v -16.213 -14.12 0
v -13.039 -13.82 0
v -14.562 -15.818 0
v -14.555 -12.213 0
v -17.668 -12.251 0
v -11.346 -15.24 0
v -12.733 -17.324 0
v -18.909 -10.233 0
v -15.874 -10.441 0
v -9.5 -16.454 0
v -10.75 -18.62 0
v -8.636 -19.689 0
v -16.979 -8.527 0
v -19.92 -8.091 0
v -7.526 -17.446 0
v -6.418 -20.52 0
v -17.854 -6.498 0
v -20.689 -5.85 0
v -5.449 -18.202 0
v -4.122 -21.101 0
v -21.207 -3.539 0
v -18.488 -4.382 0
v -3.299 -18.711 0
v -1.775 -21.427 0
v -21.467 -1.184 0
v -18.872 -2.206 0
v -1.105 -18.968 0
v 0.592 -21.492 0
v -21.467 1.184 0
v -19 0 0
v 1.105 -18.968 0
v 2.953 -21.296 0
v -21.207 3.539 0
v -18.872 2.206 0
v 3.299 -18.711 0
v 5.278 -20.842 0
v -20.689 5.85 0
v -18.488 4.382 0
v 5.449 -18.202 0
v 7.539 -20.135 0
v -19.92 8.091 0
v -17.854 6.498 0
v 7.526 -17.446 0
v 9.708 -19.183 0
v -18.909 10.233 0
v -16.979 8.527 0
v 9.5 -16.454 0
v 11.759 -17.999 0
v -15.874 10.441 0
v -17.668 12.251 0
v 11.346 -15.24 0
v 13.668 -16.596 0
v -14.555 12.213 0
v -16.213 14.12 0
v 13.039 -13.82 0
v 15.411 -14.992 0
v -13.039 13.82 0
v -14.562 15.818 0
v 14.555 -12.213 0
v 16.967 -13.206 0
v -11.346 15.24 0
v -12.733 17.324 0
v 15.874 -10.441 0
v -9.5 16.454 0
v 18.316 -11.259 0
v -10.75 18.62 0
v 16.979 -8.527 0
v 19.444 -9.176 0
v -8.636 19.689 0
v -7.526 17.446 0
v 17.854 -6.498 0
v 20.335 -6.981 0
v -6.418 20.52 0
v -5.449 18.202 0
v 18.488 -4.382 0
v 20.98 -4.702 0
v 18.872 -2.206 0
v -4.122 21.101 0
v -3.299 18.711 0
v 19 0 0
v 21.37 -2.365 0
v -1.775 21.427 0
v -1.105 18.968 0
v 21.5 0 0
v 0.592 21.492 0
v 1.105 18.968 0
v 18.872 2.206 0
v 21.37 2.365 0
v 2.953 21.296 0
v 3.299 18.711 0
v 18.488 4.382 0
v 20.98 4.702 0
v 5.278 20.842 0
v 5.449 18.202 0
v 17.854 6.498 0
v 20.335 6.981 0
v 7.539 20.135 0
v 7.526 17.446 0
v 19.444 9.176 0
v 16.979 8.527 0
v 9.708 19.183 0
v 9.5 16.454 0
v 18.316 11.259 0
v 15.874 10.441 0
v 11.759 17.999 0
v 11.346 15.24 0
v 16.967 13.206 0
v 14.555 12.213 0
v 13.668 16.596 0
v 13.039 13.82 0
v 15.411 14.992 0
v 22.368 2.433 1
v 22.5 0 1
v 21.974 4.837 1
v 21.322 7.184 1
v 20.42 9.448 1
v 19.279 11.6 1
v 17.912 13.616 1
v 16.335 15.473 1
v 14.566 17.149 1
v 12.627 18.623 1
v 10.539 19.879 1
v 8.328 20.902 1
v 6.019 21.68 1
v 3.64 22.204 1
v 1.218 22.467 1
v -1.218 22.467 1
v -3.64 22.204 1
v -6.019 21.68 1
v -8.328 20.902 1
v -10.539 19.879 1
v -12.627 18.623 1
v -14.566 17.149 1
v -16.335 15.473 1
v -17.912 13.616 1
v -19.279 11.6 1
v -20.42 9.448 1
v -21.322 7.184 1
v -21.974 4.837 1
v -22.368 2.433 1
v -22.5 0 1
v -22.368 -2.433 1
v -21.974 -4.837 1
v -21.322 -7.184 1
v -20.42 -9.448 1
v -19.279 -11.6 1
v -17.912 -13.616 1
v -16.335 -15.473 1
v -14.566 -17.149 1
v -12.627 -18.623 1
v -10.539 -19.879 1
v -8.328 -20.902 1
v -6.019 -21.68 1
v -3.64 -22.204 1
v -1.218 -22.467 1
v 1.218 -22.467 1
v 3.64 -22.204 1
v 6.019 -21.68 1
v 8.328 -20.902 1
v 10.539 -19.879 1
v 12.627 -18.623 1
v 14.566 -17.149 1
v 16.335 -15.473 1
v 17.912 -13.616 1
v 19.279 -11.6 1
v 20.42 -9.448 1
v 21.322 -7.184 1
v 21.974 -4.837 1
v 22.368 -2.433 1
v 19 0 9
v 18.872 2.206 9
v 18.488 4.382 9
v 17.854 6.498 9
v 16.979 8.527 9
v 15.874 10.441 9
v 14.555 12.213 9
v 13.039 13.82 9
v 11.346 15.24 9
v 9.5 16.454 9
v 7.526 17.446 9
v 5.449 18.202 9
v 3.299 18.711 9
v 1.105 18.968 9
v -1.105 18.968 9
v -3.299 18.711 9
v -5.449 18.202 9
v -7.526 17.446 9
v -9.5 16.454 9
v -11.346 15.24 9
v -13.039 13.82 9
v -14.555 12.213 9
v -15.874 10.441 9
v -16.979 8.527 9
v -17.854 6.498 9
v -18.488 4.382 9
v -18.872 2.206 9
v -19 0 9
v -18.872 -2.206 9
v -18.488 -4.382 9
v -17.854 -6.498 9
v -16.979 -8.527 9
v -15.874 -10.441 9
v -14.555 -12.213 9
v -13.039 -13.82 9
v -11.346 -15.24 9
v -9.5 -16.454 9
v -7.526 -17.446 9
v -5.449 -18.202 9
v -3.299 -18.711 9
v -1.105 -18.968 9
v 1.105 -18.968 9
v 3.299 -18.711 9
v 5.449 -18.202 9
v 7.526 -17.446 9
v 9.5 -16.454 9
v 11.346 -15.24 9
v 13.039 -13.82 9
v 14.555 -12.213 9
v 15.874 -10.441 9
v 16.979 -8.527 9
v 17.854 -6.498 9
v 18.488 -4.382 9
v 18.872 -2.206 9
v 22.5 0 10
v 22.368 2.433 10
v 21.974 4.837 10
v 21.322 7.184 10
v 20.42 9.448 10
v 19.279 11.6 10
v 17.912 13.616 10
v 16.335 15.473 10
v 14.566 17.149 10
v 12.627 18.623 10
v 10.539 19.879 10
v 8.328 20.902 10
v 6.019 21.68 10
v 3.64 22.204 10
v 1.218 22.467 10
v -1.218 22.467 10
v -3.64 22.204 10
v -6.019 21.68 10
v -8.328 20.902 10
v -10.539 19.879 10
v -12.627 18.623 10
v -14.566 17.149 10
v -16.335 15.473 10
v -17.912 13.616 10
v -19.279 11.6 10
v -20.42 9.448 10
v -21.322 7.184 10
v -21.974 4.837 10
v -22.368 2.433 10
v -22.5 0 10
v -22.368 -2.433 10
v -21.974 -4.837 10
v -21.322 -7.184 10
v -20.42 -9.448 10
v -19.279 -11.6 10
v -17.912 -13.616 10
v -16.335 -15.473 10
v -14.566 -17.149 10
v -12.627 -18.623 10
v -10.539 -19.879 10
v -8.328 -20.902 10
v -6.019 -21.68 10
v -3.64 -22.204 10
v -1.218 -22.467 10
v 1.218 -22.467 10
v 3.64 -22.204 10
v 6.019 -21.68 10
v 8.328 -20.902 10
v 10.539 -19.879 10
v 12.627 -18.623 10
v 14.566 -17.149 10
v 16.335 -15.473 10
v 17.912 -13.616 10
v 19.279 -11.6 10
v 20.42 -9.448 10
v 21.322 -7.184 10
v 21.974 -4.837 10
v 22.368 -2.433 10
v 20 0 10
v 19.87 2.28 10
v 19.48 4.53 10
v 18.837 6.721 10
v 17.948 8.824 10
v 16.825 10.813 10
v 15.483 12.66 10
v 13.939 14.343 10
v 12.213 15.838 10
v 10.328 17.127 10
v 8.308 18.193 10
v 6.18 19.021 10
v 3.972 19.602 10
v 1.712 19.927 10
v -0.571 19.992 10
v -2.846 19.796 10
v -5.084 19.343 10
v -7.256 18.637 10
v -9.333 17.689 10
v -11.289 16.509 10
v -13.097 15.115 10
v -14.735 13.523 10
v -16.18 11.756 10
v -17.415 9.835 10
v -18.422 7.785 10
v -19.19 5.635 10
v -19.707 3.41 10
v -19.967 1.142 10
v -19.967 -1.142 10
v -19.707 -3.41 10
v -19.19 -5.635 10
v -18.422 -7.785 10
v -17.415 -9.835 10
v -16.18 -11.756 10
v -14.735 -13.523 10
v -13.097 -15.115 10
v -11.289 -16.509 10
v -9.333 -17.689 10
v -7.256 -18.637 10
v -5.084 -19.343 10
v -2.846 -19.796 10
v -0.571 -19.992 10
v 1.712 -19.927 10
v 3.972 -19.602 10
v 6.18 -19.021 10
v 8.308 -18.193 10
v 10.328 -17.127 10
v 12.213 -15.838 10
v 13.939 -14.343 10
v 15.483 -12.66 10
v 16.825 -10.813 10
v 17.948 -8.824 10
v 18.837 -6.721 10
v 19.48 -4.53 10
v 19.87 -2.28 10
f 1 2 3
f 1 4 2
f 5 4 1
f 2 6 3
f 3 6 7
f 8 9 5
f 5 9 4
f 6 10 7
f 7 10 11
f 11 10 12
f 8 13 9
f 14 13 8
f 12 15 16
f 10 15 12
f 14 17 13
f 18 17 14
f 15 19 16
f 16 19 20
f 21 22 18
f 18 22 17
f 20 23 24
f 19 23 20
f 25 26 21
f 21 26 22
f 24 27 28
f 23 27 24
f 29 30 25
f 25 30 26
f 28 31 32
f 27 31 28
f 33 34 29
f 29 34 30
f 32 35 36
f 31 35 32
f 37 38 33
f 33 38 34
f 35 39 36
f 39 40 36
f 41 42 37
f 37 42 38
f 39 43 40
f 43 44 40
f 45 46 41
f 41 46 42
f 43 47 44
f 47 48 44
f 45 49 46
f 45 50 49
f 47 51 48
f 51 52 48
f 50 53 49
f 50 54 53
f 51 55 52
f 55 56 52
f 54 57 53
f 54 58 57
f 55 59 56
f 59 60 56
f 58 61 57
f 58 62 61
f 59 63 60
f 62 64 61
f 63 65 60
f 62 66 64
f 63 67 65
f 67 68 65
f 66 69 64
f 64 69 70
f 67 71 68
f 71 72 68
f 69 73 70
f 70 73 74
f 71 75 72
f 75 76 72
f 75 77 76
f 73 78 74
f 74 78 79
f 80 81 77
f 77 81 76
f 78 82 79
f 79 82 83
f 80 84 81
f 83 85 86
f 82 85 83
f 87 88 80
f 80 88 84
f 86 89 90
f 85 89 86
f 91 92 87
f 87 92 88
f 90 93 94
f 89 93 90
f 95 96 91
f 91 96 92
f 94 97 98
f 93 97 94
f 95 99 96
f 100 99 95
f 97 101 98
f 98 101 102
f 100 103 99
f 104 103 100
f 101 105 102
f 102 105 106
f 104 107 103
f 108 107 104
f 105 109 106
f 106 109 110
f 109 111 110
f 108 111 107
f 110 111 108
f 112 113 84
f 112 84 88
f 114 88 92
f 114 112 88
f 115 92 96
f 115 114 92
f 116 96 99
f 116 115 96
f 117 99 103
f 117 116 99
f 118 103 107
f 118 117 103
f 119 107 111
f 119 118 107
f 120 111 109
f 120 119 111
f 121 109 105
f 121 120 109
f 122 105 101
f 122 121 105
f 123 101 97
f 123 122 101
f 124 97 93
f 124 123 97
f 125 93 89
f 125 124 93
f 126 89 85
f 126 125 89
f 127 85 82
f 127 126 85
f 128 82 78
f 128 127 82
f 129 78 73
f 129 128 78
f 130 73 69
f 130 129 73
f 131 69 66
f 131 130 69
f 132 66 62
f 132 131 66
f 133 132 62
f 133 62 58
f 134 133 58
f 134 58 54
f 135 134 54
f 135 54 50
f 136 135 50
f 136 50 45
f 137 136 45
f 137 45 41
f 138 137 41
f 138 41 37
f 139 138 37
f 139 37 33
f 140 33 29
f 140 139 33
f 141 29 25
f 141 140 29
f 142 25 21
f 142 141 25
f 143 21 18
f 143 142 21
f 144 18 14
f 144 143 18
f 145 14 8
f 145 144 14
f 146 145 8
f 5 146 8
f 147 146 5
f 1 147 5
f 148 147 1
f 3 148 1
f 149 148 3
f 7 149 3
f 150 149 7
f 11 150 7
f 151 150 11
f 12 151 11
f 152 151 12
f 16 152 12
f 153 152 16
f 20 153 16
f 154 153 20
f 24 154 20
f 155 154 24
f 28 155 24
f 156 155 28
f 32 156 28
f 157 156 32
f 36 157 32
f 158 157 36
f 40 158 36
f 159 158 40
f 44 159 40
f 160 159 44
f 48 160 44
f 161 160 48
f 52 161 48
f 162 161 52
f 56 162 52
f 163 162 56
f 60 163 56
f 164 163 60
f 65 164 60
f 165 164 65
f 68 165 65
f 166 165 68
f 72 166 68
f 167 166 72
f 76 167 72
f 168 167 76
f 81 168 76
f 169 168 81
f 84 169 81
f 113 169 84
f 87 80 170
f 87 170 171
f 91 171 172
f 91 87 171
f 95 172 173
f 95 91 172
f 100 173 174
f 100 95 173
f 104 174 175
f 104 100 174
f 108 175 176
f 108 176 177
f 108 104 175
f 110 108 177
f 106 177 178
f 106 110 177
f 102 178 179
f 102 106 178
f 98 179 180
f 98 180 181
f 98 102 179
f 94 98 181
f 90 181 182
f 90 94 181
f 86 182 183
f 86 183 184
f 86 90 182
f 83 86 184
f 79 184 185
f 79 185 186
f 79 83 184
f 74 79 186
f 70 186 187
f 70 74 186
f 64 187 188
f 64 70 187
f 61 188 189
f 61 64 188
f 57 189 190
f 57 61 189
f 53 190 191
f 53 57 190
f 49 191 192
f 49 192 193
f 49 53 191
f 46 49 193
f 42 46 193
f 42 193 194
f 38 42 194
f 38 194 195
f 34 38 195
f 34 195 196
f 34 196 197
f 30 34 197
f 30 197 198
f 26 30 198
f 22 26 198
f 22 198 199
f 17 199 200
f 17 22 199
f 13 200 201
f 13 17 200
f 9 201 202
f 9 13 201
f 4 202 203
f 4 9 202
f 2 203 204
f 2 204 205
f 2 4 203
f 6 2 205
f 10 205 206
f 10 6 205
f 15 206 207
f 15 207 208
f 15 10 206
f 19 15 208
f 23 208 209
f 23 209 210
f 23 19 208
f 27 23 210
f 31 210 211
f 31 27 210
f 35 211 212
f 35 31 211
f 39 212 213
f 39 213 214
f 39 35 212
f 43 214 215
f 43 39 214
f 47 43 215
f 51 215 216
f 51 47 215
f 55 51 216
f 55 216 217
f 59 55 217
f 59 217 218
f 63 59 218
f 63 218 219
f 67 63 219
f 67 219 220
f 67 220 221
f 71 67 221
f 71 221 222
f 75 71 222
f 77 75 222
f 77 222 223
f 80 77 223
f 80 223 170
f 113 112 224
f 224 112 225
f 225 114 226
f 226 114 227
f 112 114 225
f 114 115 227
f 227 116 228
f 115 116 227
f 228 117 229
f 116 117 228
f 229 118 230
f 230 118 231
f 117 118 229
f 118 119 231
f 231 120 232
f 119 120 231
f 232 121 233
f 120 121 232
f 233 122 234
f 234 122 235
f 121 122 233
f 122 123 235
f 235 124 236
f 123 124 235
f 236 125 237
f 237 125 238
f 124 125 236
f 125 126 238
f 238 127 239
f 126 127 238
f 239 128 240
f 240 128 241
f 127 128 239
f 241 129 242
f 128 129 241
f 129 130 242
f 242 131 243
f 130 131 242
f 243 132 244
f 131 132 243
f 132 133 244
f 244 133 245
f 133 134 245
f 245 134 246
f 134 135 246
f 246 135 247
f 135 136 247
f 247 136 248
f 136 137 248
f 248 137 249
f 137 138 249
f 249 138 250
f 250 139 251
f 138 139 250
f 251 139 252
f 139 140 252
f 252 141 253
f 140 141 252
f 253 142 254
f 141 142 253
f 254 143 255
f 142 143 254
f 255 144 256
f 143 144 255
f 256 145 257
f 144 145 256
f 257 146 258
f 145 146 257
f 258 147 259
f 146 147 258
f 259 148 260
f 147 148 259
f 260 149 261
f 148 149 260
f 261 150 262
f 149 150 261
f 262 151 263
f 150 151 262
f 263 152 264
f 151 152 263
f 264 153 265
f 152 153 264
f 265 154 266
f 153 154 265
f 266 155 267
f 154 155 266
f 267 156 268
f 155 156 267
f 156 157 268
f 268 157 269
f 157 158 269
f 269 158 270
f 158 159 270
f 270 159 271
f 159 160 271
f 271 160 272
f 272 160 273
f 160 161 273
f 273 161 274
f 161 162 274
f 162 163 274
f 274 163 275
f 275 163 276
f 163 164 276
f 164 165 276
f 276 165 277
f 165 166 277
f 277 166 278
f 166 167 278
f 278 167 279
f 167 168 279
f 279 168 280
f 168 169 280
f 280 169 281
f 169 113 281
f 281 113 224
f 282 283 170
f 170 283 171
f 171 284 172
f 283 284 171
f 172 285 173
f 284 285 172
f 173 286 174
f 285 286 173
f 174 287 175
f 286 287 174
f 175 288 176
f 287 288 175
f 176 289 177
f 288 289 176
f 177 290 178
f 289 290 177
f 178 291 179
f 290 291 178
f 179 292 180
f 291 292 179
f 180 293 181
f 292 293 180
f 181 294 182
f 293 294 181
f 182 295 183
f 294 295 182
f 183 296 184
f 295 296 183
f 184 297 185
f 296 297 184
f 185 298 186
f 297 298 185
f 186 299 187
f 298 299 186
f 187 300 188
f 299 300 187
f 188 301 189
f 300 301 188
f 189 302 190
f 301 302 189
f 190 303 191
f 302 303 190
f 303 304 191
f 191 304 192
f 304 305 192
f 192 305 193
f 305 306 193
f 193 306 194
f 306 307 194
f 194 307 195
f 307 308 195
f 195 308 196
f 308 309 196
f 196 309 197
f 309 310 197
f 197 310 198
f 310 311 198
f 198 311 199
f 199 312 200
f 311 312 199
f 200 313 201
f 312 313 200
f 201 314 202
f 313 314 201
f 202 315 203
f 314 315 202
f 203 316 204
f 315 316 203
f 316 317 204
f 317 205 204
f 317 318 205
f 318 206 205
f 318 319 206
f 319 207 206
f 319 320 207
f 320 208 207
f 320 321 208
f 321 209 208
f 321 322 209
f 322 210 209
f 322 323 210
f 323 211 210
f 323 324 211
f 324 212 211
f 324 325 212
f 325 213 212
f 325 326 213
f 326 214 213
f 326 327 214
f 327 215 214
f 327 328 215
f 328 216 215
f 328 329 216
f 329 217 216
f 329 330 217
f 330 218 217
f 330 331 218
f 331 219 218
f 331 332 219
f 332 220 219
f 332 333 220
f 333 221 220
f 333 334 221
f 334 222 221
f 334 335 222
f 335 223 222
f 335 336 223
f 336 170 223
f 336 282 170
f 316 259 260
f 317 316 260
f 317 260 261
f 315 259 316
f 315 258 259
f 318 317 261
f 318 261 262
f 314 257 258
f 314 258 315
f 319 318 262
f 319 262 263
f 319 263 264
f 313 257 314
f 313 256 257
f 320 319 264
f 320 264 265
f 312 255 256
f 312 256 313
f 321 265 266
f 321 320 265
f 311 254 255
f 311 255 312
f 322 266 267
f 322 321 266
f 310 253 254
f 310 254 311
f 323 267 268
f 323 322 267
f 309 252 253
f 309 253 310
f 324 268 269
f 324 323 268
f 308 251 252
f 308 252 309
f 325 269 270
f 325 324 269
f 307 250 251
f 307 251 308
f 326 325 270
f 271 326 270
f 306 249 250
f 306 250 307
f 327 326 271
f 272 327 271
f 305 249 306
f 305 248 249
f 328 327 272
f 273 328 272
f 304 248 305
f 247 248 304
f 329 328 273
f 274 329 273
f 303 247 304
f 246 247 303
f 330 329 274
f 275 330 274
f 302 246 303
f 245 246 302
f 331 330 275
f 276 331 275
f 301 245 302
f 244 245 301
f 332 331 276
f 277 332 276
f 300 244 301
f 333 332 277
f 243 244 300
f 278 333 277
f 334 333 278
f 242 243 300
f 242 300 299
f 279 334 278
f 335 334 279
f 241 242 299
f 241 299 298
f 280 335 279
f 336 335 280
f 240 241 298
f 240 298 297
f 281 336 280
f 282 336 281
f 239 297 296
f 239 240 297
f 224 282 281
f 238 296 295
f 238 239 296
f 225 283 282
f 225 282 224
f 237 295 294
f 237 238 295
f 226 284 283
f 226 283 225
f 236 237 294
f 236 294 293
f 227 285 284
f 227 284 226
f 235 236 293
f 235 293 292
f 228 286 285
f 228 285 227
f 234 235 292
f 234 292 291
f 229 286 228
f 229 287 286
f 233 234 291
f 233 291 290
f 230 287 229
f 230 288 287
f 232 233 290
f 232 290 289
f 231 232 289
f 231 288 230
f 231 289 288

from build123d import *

# Parameters (mm, degrees)
SKETCH_R        = 22.5
SKETCH_R_2      = 19
PAD_DEPTH       = 10
CHAMFER_SIZE    = 1
CHAMFER001_SIZE = 1


with BuildPart() as part:
    # Sketch → Pad (new body)
    with BuildSketch(Plane.XY):
        Circle(SKETCH_R)
        Circle(SKETCH_R_2, mode=Mode.SUBTRACT)
    extrude(amount=PAD_DEPTH)

    # Chamfer
    chamfer_edges = [part.edges().sort_by_distance(p)[0] for p in [
        (-19, 0, 10),
    ]]
    chamfer(chamfer_edges, length=CHAMFER_SIZE)

    # Chamfer001
    chamfer001_edges = [part.edges().sort_by_distance(p)[0] for p in [
        (-22.5, 0, 0),
    ]]
    chamfer(chamfer001_edges, length=CHAMFER001_SIZE)


solid = part.part
